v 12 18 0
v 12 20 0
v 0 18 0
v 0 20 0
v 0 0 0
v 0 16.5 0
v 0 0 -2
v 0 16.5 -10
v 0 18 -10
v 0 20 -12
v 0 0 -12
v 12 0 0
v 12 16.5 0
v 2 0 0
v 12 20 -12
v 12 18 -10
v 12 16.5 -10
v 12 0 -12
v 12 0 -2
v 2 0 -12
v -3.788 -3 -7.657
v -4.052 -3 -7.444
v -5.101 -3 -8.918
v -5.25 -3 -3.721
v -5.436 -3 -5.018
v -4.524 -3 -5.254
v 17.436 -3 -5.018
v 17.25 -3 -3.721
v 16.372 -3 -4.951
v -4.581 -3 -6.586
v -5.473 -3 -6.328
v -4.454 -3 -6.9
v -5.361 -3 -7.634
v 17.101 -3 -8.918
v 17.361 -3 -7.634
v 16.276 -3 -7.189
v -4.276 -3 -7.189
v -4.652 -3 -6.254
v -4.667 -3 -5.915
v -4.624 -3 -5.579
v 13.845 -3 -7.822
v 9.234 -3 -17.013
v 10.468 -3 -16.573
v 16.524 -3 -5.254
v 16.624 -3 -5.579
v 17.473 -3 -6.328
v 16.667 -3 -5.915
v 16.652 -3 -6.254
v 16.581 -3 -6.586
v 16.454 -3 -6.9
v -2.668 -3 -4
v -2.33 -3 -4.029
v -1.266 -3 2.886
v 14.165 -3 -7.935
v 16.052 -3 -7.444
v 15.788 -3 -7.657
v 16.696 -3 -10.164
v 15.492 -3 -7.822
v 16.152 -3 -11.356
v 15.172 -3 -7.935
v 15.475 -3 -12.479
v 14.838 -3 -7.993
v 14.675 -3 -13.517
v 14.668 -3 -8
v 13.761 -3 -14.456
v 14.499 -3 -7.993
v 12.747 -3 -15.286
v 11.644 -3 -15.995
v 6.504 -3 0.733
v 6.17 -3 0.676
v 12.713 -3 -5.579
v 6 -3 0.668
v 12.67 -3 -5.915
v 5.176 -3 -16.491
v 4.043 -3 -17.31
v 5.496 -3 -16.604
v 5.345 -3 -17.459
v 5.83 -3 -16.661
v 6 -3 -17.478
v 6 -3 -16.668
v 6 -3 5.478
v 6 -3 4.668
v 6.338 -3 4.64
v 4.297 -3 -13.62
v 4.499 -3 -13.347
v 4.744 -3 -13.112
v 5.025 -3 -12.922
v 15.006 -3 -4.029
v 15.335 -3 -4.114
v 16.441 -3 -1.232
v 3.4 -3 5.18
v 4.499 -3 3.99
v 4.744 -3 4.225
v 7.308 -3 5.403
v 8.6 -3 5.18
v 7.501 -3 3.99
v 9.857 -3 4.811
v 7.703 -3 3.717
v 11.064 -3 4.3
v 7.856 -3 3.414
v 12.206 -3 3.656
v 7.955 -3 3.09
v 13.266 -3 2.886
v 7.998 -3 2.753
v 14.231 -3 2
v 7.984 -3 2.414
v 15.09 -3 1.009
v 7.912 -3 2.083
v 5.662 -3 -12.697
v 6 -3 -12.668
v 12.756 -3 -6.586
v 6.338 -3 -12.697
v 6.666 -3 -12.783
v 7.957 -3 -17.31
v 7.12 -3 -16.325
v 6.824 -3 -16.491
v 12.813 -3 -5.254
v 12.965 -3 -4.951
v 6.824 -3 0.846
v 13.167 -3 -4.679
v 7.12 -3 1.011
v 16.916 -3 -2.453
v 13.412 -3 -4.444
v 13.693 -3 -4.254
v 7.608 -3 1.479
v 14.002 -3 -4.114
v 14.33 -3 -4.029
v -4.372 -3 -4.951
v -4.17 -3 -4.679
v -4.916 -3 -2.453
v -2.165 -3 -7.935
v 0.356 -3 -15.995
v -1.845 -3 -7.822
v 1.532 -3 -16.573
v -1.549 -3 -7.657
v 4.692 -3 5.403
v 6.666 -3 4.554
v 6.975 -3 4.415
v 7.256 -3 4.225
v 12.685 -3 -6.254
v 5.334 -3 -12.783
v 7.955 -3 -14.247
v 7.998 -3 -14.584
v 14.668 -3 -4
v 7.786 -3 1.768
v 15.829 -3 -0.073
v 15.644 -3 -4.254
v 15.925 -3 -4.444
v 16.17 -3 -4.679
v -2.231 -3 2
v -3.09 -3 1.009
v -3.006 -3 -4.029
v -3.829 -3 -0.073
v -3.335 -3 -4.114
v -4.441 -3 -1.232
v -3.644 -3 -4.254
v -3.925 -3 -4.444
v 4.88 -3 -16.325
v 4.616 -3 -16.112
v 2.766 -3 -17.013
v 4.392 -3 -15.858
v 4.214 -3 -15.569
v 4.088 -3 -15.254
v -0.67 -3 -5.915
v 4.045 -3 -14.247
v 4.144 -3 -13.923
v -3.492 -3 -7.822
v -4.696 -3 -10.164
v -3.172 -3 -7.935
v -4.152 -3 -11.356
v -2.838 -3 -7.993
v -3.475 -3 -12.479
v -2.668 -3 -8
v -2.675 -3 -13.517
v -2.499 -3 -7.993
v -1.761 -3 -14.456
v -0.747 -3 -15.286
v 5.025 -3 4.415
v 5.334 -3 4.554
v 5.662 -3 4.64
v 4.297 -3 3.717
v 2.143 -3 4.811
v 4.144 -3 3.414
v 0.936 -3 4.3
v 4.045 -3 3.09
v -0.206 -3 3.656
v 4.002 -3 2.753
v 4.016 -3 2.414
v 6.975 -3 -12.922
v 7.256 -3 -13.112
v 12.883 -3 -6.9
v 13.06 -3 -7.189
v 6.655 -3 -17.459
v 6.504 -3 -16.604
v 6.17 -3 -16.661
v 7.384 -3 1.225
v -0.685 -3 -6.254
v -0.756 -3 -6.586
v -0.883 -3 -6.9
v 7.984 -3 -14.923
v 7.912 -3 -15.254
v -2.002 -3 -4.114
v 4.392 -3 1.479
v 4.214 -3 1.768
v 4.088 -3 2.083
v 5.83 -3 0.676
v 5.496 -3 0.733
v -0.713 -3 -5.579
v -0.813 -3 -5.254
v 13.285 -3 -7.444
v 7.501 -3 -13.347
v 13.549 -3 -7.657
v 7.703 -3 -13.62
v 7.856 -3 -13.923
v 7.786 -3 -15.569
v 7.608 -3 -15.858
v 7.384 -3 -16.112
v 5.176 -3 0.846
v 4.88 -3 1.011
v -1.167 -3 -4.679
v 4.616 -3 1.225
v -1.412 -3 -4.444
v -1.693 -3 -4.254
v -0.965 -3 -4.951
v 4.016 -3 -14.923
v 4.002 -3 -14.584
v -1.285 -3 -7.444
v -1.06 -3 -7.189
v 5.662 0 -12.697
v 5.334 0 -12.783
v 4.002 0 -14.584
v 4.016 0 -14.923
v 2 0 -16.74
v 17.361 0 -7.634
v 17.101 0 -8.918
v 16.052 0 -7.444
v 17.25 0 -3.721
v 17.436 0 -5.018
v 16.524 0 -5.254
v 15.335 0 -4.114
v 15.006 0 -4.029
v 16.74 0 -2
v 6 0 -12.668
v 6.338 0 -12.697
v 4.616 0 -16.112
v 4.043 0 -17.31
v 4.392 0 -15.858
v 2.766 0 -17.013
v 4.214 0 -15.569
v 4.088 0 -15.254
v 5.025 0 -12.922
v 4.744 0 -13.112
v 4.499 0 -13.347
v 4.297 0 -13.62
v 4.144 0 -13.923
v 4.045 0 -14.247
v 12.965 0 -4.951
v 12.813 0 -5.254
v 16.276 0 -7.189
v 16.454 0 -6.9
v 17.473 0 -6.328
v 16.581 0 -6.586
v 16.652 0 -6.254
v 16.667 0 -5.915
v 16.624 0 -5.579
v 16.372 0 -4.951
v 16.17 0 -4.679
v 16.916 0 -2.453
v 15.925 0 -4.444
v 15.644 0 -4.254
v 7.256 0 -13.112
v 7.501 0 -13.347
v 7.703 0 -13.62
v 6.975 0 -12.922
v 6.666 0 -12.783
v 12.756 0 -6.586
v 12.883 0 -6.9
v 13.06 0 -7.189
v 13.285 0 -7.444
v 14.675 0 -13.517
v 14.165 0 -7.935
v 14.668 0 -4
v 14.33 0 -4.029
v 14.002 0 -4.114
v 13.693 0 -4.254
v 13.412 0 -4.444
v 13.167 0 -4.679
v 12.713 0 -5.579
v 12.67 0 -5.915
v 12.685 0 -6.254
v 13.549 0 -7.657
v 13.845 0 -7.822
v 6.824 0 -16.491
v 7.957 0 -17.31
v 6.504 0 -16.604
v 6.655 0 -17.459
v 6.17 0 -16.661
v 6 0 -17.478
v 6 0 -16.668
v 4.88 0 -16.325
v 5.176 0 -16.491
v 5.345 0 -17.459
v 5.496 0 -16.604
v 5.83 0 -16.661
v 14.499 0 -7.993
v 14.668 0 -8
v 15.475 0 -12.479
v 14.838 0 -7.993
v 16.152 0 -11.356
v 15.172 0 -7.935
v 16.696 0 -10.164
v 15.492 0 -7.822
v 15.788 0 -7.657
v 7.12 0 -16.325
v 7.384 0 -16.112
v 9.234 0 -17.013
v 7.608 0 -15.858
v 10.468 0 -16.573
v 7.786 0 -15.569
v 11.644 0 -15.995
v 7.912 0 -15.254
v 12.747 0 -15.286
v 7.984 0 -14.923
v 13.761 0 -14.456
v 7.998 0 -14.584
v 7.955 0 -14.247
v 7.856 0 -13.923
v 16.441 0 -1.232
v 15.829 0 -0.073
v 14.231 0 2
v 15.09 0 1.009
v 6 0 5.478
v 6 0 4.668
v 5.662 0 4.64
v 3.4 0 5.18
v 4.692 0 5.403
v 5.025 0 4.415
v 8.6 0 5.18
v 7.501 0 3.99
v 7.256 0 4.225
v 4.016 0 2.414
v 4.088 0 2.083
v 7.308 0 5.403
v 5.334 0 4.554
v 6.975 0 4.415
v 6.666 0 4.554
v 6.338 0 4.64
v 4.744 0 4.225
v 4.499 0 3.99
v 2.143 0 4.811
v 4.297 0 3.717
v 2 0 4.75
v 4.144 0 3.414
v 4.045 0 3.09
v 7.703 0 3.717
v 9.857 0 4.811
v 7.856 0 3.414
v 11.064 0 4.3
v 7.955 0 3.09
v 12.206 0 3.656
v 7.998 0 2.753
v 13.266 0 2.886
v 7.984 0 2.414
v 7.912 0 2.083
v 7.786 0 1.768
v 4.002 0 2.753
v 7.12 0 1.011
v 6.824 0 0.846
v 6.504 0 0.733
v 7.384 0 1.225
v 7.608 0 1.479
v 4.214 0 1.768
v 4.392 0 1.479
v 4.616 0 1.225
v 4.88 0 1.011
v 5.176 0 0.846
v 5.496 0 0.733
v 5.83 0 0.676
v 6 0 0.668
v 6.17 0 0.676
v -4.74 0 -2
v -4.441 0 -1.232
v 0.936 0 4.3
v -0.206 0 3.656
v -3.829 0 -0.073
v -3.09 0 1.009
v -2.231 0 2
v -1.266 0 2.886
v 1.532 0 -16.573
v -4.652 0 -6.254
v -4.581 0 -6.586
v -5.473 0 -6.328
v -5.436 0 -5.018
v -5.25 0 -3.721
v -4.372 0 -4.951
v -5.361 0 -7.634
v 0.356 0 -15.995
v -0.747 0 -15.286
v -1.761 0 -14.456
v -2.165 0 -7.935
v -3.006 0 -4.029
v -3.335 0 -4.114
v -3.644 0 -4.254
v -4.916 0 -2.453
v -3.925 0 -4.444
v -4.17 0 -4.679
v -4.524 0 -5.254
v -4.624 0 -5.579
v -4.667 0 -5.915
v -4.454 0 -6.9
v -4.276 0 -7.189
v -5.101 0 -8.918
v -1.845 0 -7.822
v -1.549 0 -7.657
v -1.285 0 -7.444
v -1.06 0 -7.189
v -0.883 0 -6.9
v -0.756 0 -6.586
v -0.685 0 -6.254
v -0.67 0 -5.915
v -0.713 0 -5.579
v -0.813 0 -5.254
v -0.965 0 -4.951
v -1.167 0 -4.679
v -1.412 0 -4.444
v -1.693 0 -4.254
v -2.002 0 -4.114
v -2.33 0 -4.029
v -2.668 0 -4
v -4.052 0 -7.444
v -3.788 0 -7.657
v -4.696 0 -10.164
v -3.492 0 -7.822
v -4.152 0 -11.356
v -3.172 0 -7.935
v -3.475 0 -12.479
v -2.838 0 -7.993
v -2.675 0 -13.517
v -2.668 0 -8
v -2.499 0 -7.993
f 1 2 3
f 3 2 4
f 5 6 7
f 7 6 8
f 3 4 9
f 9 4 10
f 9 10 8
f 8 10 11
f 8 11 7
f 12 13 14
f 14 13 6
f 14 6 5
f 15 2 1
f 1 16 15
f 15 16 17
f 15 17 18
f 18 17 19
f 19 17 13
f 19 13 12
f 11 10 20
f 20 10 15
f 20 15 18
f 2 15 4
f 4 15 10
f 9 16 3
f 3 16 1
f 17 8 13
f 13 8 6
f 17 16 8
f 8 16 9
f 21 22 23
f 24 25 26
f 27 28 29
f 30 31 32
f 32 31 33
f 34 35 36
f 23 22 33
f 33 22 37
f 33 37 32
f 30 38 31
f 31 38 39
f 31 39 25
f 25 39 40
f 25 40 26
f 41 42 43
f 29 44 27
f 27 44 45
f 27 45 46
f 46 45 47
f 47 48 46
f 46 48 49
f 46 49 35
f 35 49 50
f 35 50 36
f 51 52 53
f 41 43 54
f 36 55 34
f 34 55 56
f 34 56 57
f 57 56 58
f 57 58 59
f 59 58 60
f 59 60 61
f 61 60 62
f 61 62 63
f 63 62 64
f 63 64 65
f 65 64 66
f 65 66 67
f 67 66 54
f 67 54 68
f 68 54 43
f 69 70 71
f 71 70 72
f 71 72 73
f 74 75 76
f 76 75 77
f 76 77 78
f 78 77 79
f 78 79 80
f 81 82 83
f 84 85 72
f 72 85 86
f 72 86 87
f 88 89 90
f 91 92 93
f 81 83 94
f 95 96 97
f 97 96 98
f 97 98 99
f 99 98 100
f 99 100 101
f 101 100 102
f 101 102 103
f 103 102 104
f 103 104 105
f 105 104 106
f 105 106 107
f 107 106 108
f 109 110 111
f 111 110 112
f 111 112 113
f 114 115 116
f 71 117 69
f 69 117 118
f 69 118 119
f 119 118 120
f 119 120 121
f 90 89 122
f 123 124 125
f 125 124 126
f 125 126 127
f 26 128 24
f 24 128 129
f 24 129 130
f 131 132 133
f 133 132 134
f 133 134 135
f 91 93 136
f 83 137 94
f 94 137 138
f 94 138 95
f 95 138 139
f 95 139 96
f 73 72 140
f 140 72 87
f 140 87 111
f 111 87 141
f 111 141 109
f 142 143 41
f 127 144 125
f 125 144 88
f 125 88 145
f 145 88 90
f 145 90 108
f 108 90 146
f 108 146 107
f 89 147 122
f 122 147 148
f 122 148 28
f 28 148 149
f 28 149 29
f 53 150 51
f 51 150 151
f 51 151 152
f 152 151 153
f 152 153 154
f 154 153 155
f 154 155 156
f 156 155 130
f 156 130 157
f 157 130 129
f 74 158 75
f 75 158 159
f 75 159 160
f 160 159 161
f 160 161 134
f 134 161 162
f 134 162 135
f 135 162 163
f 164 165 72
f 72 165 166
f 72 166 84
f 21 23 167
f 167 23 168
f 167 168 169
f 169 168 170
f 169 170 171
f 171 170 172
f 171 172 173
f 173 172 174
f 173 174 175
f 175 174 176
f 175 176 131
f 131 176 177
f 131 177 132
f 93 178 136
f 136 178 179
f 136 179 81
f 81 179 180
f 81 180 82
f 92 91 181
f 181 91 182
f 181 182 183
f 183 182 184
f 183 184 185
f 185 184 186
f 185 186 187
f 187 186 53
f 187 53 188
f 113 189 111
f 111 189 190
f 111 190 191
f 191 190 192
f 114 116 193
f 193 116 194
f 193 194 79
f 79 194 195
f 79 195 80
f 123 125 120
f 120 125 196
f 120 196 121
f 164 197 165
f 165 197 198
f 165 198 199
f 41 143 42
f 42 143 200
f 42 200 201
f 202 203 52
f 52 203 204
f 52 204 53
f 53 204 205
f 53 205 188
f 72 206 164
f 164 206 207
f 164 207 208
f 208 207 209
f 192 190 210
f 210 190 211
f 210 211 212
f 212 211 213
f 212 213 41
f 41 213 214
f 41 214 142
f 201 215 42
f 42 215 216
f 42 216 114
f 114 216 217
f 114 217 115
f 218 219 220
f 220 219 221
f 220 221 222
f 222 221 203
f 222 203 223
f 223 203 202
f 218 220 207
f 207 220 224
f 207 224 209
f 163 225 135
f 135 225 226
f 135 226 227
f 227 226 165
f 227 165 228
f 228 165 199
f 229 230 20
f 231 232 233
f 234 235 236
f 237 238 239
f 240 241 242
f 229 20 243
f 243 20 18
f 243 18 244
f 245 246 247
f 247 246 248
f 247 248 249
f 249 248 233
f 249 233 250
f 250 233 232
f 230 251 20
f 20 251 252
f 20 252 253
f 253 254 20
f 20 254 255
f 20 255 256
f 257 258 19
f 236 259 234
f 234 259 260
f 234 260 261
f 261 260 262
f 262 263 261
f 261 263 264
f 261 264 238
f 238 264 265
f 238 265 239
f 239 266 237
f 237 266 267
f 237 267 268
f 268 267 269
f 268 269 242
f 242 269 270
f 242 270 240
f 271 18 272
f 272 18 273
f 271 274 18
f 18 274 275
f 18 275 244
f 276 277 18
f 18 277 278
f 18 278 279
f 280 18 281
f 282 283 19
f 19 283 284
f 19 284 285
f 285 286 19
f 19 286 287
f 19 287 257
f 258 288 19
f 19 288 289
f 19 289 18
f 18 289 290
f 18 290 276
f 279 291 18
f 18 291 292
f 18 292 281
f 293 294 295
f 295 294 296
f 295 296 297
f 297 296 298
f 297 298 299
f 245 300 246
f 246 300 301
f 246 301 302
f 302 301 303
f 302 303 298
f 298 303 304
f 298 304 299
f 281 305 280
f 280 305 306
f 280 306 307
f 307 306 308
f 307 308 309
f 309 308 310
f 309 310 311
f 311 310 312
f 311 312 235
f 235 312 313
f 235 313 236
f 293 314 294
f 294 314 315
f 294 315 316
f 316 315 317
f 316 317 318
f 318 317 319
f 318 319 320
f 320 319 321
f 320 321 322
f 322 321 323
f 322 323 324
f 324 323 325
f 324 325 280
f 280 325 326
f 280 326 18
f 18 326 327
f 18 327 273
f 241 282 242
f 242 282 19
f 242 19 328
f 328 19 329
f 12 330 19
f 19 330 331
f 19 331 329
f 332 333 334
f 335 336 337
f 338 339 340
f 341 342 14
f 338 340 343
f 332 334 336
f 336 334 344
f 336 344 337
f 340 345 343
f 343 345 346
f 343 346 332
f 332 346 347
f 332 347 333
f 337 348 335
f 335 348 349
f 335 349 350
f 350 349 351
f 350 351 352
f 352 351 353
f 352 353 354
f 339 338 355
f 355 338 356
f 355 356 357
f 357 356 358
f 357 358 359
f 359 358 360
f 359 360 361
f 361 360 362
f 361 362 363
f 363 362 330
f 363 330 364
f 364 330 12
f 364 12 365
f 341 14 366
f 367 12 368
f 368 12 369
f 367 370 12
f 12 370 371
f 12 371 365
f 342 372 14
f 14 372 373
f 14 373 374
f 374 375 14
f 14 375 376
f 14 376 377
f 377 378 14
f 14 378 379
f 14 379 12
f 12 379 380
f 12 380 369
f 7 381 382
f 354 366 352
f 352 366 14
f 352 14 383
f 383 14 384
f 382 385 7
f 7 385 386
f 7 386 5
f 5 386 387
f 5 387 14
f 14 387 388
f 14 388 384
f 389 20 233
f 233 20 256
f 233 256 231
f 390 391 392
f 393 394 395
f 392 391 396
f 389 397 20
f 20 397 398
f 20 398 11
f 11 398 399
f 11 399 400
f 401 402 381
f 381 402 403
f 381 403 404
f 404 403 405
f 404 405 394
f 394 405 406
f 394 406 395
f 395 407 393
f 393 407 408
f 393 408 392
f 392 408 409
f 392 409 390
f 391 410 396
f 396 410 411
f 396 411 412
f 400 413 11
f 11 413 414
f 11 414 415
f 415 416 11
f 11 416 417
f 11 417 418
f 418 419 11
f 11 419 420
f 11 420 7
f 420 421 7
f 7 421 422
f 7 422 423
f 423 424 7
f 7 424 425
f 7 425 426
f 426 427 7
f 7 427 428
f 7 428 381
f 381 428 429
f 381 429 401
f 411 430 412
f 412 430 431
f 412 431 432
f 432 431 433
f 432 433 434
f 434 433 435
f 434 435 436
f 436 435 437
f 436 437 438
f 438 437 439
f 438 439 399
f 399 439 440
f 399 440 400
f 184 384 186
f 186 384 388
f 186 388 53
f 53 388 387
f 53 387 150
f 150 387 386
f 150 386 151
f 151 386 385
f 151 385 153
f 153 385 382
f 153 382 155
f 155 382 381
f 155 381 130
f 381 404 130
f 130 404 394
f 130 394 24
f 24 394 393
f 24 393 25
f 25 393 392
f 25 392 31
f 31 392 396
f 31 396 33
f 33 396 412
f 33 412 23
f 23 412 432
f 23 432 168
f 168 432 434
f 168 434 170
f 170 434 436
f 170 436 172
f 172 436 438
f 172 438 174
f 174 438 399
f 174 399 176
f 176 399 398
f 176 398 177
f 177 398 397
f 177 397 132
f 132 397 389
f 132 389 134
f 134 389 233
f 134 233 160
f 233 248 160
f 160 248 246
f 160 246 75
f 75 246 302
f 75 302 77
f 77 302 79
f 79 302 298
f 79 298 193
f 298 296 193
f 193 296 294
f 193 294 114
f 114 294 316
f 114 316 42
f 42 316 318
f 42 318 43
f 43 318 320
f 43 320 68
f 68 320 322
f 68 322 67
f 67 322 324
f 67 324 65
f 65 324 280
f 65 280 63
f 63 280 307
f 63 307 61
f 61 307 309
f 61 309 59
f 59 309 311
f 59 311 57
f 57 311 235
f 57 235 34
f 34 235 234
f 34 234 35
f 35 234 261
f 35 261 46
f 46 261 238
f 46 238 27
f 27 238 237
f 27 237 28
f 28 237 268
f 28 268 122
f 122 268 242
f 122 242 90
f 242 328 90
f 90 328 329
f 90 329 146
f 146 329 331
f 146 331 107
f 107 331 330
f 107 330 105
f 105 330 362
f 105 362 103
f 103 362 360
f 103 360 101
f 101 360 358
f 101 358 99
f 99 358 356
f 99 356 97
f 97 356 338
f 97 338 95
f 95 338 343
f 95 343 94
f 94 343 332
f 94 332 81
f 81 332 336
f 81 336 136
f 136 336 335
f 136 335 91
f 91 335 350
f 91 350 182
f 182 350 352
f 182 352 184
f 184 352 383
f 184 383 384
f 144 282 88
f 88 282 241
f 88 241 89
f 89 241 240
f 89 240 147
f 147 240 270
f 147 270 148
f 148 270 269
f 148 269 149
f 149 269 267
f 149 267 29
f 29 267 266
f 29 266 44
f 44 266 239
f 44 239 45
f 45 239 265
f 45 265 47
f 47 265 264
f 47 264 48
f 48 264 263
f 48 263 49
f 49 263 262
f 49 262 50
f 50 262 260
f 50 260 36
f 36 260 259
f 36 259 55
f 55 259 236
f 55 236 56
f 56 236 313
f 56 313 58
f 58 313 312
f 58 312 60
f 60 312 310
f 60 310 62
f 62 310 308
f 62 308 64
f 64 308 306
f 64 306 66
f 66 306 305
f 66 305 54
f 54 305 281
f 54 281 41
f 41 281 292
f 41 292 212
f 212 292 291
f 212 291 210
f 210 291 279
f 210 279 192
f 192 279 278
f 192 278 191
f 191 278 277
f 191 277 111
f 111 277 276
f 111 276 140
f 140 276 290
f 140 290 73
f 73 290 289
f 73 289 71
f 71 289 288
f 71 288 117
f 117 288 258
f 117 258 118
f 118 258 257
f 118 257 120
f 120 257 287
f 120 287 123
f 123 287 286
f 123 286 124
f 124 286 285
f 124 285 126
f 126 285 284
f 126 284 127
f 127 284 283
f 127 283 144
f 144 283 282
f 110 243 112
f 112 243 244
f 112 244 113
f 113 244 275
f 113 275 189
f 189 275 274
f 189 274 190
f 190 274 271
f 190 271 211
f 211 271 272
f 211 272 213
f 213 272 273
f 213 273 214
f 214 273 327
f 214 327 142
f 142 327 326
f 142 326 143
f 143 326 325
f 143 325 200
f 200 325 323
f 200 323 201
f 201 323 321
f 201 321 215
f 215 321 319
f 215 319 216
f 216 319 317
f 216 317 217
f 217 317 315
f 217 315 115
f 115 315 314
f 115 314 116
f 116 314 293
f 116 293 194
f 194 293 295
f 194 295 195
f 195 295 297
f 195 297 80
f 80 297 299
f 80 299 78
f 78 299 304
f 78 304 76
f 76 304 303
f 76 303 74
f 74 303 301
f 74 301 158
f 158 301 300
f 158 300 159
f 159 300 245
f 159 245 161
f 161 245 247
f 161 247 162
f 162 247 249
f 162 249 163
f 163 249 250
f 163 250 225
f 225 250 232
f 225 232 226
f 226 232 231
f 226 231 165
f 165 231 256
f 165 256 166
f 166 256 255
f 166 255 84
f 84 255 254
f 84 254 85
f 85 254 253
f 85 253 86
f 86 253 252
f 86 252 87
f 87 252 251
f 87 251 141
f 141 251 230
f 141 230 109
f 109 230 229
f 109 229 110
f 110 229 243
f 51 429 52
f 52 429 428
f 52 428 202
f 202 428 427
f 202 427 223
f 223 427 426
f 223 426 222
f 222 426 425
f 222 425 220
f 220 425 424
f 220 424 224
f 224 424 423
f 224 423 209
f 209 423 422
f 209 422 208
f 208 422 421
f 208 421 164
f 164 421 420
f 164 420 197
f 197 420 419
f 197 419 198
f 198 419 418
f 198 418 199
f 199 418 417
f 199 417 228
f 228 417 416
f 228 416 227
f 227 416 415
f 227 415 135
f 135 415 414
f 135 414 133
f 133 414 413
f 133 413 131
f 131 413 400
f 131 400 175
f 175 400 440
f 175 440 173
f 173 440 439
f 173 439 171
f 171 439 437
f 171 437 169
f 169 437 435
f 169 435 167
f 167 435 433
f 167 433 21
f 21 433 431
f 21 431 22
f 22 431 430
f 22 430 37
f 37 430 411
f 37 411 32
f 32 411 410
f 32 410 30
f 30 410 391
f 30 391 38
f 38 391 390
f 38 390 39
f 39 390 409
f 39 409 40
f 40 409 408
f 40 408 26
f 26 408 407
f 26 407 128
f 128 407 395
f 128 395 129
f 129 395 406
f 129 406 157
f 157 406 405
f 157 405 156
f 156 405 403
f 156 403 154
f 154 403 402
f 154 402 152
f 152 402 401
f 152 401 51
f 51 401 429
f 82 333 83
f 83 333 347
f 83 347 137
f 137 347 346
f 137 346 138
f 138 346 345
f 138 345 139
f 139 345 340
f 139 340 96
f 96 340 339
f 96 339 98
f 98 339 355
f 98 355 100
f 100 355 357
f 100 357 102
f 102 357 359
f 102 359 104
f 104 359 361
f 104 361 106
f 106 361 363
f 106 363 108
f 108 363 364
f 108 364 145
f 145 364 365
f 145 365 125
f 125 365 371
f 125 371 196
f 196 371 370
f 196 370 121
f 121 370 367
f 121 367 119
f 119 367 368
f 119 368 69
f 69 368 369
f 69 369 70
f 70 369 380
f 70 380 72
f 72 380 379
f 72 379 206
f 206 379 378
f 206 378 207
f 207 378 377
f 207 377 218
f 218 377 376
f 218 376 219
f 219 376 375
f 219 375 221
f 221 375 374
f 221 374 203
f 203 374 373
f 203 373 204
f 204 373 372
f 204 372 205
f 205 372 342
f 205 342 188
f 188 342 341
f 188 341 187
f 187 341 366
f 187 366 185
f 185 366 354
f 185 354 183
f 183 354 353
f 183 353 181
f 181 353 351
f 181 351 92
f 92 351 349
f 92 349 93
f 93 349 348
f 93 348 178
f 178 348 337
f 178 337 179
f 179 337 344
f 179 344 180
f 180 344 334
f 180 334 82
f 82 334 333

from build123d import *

# Parameters (mm, degrees)
CROQUIS1_W              = 12
CROQUIS1_H              = 12
SALIENTE_EXTRUIR1_DEPTH = 20
CROQUIS2_W              = 12
CROQUIS2_H              = 1.5
CORTAR_EXTRUIR1_DEPTH   = 10
CROQUIS3_R              = 11.478178836
CROQUIS3_R_2            = 2
SALIENTE_EXTRUIR2_DEPTH = 3


with BuildPart() as part:
    # Croquis1 → Saliente-Extruir1 (new body)
    with BuildSketch(Plane(origin=(0, 0, 0), x_dir=(1, 0, 0), z_dir=(0, 1, 0))):
        with Locations((6, 6)):
            Rectangle(CROQUIS1_W, CROQUIS1_H)
    extrude(amount=SALIENTE_EXTRUIR1_DEPTH)

    # Croquis2 → Cortar-Extruir1 (cut)
    with BuildSketch(Plane.XY):
        with Locations((6, 17.25)):
            Rectangle(CROQUIS2_W, CROQUIS2_H)
    extrude(amount=-CORTAR_EXTRUIR1_DEPTH, mode=Mode.SUBTRACT)

    # Croquis3 → Saliente-Extruir2 (add)
    with BuildSketch(Plane.XZ):
        with Locations(Location((6, -6, 0), (0, 0, 270))):
            Circle(CROQUIS3_R)
        with Locations(Location((14.668474488, -6, 0), (0, 0, 270))):
            Circle(CROQUIS3_R_2, mode=Mode.SUBTRACT)
        with Locations(Location((6, -14.668474488, 0), (0, 0, 270))):
            Circle(CROQUIS3_R_2, mode=Mode.SUBTRACT)
        with Locations(Location((-2.668474488, -6, 0), (0, 0, 270))):
            Circle(CROQUIS3_R_2, mode=Mode.SUBTRACT)
        with Locations(Location((6, 2.668474488, 0), (0, 0, 270))):
            Circle(CROQUIS3_R_2, mode=Mode.SUBTRACT)
    extrude(amount=SALIENTE_EXTRUIR2_DEPTH)


solid = part.part
